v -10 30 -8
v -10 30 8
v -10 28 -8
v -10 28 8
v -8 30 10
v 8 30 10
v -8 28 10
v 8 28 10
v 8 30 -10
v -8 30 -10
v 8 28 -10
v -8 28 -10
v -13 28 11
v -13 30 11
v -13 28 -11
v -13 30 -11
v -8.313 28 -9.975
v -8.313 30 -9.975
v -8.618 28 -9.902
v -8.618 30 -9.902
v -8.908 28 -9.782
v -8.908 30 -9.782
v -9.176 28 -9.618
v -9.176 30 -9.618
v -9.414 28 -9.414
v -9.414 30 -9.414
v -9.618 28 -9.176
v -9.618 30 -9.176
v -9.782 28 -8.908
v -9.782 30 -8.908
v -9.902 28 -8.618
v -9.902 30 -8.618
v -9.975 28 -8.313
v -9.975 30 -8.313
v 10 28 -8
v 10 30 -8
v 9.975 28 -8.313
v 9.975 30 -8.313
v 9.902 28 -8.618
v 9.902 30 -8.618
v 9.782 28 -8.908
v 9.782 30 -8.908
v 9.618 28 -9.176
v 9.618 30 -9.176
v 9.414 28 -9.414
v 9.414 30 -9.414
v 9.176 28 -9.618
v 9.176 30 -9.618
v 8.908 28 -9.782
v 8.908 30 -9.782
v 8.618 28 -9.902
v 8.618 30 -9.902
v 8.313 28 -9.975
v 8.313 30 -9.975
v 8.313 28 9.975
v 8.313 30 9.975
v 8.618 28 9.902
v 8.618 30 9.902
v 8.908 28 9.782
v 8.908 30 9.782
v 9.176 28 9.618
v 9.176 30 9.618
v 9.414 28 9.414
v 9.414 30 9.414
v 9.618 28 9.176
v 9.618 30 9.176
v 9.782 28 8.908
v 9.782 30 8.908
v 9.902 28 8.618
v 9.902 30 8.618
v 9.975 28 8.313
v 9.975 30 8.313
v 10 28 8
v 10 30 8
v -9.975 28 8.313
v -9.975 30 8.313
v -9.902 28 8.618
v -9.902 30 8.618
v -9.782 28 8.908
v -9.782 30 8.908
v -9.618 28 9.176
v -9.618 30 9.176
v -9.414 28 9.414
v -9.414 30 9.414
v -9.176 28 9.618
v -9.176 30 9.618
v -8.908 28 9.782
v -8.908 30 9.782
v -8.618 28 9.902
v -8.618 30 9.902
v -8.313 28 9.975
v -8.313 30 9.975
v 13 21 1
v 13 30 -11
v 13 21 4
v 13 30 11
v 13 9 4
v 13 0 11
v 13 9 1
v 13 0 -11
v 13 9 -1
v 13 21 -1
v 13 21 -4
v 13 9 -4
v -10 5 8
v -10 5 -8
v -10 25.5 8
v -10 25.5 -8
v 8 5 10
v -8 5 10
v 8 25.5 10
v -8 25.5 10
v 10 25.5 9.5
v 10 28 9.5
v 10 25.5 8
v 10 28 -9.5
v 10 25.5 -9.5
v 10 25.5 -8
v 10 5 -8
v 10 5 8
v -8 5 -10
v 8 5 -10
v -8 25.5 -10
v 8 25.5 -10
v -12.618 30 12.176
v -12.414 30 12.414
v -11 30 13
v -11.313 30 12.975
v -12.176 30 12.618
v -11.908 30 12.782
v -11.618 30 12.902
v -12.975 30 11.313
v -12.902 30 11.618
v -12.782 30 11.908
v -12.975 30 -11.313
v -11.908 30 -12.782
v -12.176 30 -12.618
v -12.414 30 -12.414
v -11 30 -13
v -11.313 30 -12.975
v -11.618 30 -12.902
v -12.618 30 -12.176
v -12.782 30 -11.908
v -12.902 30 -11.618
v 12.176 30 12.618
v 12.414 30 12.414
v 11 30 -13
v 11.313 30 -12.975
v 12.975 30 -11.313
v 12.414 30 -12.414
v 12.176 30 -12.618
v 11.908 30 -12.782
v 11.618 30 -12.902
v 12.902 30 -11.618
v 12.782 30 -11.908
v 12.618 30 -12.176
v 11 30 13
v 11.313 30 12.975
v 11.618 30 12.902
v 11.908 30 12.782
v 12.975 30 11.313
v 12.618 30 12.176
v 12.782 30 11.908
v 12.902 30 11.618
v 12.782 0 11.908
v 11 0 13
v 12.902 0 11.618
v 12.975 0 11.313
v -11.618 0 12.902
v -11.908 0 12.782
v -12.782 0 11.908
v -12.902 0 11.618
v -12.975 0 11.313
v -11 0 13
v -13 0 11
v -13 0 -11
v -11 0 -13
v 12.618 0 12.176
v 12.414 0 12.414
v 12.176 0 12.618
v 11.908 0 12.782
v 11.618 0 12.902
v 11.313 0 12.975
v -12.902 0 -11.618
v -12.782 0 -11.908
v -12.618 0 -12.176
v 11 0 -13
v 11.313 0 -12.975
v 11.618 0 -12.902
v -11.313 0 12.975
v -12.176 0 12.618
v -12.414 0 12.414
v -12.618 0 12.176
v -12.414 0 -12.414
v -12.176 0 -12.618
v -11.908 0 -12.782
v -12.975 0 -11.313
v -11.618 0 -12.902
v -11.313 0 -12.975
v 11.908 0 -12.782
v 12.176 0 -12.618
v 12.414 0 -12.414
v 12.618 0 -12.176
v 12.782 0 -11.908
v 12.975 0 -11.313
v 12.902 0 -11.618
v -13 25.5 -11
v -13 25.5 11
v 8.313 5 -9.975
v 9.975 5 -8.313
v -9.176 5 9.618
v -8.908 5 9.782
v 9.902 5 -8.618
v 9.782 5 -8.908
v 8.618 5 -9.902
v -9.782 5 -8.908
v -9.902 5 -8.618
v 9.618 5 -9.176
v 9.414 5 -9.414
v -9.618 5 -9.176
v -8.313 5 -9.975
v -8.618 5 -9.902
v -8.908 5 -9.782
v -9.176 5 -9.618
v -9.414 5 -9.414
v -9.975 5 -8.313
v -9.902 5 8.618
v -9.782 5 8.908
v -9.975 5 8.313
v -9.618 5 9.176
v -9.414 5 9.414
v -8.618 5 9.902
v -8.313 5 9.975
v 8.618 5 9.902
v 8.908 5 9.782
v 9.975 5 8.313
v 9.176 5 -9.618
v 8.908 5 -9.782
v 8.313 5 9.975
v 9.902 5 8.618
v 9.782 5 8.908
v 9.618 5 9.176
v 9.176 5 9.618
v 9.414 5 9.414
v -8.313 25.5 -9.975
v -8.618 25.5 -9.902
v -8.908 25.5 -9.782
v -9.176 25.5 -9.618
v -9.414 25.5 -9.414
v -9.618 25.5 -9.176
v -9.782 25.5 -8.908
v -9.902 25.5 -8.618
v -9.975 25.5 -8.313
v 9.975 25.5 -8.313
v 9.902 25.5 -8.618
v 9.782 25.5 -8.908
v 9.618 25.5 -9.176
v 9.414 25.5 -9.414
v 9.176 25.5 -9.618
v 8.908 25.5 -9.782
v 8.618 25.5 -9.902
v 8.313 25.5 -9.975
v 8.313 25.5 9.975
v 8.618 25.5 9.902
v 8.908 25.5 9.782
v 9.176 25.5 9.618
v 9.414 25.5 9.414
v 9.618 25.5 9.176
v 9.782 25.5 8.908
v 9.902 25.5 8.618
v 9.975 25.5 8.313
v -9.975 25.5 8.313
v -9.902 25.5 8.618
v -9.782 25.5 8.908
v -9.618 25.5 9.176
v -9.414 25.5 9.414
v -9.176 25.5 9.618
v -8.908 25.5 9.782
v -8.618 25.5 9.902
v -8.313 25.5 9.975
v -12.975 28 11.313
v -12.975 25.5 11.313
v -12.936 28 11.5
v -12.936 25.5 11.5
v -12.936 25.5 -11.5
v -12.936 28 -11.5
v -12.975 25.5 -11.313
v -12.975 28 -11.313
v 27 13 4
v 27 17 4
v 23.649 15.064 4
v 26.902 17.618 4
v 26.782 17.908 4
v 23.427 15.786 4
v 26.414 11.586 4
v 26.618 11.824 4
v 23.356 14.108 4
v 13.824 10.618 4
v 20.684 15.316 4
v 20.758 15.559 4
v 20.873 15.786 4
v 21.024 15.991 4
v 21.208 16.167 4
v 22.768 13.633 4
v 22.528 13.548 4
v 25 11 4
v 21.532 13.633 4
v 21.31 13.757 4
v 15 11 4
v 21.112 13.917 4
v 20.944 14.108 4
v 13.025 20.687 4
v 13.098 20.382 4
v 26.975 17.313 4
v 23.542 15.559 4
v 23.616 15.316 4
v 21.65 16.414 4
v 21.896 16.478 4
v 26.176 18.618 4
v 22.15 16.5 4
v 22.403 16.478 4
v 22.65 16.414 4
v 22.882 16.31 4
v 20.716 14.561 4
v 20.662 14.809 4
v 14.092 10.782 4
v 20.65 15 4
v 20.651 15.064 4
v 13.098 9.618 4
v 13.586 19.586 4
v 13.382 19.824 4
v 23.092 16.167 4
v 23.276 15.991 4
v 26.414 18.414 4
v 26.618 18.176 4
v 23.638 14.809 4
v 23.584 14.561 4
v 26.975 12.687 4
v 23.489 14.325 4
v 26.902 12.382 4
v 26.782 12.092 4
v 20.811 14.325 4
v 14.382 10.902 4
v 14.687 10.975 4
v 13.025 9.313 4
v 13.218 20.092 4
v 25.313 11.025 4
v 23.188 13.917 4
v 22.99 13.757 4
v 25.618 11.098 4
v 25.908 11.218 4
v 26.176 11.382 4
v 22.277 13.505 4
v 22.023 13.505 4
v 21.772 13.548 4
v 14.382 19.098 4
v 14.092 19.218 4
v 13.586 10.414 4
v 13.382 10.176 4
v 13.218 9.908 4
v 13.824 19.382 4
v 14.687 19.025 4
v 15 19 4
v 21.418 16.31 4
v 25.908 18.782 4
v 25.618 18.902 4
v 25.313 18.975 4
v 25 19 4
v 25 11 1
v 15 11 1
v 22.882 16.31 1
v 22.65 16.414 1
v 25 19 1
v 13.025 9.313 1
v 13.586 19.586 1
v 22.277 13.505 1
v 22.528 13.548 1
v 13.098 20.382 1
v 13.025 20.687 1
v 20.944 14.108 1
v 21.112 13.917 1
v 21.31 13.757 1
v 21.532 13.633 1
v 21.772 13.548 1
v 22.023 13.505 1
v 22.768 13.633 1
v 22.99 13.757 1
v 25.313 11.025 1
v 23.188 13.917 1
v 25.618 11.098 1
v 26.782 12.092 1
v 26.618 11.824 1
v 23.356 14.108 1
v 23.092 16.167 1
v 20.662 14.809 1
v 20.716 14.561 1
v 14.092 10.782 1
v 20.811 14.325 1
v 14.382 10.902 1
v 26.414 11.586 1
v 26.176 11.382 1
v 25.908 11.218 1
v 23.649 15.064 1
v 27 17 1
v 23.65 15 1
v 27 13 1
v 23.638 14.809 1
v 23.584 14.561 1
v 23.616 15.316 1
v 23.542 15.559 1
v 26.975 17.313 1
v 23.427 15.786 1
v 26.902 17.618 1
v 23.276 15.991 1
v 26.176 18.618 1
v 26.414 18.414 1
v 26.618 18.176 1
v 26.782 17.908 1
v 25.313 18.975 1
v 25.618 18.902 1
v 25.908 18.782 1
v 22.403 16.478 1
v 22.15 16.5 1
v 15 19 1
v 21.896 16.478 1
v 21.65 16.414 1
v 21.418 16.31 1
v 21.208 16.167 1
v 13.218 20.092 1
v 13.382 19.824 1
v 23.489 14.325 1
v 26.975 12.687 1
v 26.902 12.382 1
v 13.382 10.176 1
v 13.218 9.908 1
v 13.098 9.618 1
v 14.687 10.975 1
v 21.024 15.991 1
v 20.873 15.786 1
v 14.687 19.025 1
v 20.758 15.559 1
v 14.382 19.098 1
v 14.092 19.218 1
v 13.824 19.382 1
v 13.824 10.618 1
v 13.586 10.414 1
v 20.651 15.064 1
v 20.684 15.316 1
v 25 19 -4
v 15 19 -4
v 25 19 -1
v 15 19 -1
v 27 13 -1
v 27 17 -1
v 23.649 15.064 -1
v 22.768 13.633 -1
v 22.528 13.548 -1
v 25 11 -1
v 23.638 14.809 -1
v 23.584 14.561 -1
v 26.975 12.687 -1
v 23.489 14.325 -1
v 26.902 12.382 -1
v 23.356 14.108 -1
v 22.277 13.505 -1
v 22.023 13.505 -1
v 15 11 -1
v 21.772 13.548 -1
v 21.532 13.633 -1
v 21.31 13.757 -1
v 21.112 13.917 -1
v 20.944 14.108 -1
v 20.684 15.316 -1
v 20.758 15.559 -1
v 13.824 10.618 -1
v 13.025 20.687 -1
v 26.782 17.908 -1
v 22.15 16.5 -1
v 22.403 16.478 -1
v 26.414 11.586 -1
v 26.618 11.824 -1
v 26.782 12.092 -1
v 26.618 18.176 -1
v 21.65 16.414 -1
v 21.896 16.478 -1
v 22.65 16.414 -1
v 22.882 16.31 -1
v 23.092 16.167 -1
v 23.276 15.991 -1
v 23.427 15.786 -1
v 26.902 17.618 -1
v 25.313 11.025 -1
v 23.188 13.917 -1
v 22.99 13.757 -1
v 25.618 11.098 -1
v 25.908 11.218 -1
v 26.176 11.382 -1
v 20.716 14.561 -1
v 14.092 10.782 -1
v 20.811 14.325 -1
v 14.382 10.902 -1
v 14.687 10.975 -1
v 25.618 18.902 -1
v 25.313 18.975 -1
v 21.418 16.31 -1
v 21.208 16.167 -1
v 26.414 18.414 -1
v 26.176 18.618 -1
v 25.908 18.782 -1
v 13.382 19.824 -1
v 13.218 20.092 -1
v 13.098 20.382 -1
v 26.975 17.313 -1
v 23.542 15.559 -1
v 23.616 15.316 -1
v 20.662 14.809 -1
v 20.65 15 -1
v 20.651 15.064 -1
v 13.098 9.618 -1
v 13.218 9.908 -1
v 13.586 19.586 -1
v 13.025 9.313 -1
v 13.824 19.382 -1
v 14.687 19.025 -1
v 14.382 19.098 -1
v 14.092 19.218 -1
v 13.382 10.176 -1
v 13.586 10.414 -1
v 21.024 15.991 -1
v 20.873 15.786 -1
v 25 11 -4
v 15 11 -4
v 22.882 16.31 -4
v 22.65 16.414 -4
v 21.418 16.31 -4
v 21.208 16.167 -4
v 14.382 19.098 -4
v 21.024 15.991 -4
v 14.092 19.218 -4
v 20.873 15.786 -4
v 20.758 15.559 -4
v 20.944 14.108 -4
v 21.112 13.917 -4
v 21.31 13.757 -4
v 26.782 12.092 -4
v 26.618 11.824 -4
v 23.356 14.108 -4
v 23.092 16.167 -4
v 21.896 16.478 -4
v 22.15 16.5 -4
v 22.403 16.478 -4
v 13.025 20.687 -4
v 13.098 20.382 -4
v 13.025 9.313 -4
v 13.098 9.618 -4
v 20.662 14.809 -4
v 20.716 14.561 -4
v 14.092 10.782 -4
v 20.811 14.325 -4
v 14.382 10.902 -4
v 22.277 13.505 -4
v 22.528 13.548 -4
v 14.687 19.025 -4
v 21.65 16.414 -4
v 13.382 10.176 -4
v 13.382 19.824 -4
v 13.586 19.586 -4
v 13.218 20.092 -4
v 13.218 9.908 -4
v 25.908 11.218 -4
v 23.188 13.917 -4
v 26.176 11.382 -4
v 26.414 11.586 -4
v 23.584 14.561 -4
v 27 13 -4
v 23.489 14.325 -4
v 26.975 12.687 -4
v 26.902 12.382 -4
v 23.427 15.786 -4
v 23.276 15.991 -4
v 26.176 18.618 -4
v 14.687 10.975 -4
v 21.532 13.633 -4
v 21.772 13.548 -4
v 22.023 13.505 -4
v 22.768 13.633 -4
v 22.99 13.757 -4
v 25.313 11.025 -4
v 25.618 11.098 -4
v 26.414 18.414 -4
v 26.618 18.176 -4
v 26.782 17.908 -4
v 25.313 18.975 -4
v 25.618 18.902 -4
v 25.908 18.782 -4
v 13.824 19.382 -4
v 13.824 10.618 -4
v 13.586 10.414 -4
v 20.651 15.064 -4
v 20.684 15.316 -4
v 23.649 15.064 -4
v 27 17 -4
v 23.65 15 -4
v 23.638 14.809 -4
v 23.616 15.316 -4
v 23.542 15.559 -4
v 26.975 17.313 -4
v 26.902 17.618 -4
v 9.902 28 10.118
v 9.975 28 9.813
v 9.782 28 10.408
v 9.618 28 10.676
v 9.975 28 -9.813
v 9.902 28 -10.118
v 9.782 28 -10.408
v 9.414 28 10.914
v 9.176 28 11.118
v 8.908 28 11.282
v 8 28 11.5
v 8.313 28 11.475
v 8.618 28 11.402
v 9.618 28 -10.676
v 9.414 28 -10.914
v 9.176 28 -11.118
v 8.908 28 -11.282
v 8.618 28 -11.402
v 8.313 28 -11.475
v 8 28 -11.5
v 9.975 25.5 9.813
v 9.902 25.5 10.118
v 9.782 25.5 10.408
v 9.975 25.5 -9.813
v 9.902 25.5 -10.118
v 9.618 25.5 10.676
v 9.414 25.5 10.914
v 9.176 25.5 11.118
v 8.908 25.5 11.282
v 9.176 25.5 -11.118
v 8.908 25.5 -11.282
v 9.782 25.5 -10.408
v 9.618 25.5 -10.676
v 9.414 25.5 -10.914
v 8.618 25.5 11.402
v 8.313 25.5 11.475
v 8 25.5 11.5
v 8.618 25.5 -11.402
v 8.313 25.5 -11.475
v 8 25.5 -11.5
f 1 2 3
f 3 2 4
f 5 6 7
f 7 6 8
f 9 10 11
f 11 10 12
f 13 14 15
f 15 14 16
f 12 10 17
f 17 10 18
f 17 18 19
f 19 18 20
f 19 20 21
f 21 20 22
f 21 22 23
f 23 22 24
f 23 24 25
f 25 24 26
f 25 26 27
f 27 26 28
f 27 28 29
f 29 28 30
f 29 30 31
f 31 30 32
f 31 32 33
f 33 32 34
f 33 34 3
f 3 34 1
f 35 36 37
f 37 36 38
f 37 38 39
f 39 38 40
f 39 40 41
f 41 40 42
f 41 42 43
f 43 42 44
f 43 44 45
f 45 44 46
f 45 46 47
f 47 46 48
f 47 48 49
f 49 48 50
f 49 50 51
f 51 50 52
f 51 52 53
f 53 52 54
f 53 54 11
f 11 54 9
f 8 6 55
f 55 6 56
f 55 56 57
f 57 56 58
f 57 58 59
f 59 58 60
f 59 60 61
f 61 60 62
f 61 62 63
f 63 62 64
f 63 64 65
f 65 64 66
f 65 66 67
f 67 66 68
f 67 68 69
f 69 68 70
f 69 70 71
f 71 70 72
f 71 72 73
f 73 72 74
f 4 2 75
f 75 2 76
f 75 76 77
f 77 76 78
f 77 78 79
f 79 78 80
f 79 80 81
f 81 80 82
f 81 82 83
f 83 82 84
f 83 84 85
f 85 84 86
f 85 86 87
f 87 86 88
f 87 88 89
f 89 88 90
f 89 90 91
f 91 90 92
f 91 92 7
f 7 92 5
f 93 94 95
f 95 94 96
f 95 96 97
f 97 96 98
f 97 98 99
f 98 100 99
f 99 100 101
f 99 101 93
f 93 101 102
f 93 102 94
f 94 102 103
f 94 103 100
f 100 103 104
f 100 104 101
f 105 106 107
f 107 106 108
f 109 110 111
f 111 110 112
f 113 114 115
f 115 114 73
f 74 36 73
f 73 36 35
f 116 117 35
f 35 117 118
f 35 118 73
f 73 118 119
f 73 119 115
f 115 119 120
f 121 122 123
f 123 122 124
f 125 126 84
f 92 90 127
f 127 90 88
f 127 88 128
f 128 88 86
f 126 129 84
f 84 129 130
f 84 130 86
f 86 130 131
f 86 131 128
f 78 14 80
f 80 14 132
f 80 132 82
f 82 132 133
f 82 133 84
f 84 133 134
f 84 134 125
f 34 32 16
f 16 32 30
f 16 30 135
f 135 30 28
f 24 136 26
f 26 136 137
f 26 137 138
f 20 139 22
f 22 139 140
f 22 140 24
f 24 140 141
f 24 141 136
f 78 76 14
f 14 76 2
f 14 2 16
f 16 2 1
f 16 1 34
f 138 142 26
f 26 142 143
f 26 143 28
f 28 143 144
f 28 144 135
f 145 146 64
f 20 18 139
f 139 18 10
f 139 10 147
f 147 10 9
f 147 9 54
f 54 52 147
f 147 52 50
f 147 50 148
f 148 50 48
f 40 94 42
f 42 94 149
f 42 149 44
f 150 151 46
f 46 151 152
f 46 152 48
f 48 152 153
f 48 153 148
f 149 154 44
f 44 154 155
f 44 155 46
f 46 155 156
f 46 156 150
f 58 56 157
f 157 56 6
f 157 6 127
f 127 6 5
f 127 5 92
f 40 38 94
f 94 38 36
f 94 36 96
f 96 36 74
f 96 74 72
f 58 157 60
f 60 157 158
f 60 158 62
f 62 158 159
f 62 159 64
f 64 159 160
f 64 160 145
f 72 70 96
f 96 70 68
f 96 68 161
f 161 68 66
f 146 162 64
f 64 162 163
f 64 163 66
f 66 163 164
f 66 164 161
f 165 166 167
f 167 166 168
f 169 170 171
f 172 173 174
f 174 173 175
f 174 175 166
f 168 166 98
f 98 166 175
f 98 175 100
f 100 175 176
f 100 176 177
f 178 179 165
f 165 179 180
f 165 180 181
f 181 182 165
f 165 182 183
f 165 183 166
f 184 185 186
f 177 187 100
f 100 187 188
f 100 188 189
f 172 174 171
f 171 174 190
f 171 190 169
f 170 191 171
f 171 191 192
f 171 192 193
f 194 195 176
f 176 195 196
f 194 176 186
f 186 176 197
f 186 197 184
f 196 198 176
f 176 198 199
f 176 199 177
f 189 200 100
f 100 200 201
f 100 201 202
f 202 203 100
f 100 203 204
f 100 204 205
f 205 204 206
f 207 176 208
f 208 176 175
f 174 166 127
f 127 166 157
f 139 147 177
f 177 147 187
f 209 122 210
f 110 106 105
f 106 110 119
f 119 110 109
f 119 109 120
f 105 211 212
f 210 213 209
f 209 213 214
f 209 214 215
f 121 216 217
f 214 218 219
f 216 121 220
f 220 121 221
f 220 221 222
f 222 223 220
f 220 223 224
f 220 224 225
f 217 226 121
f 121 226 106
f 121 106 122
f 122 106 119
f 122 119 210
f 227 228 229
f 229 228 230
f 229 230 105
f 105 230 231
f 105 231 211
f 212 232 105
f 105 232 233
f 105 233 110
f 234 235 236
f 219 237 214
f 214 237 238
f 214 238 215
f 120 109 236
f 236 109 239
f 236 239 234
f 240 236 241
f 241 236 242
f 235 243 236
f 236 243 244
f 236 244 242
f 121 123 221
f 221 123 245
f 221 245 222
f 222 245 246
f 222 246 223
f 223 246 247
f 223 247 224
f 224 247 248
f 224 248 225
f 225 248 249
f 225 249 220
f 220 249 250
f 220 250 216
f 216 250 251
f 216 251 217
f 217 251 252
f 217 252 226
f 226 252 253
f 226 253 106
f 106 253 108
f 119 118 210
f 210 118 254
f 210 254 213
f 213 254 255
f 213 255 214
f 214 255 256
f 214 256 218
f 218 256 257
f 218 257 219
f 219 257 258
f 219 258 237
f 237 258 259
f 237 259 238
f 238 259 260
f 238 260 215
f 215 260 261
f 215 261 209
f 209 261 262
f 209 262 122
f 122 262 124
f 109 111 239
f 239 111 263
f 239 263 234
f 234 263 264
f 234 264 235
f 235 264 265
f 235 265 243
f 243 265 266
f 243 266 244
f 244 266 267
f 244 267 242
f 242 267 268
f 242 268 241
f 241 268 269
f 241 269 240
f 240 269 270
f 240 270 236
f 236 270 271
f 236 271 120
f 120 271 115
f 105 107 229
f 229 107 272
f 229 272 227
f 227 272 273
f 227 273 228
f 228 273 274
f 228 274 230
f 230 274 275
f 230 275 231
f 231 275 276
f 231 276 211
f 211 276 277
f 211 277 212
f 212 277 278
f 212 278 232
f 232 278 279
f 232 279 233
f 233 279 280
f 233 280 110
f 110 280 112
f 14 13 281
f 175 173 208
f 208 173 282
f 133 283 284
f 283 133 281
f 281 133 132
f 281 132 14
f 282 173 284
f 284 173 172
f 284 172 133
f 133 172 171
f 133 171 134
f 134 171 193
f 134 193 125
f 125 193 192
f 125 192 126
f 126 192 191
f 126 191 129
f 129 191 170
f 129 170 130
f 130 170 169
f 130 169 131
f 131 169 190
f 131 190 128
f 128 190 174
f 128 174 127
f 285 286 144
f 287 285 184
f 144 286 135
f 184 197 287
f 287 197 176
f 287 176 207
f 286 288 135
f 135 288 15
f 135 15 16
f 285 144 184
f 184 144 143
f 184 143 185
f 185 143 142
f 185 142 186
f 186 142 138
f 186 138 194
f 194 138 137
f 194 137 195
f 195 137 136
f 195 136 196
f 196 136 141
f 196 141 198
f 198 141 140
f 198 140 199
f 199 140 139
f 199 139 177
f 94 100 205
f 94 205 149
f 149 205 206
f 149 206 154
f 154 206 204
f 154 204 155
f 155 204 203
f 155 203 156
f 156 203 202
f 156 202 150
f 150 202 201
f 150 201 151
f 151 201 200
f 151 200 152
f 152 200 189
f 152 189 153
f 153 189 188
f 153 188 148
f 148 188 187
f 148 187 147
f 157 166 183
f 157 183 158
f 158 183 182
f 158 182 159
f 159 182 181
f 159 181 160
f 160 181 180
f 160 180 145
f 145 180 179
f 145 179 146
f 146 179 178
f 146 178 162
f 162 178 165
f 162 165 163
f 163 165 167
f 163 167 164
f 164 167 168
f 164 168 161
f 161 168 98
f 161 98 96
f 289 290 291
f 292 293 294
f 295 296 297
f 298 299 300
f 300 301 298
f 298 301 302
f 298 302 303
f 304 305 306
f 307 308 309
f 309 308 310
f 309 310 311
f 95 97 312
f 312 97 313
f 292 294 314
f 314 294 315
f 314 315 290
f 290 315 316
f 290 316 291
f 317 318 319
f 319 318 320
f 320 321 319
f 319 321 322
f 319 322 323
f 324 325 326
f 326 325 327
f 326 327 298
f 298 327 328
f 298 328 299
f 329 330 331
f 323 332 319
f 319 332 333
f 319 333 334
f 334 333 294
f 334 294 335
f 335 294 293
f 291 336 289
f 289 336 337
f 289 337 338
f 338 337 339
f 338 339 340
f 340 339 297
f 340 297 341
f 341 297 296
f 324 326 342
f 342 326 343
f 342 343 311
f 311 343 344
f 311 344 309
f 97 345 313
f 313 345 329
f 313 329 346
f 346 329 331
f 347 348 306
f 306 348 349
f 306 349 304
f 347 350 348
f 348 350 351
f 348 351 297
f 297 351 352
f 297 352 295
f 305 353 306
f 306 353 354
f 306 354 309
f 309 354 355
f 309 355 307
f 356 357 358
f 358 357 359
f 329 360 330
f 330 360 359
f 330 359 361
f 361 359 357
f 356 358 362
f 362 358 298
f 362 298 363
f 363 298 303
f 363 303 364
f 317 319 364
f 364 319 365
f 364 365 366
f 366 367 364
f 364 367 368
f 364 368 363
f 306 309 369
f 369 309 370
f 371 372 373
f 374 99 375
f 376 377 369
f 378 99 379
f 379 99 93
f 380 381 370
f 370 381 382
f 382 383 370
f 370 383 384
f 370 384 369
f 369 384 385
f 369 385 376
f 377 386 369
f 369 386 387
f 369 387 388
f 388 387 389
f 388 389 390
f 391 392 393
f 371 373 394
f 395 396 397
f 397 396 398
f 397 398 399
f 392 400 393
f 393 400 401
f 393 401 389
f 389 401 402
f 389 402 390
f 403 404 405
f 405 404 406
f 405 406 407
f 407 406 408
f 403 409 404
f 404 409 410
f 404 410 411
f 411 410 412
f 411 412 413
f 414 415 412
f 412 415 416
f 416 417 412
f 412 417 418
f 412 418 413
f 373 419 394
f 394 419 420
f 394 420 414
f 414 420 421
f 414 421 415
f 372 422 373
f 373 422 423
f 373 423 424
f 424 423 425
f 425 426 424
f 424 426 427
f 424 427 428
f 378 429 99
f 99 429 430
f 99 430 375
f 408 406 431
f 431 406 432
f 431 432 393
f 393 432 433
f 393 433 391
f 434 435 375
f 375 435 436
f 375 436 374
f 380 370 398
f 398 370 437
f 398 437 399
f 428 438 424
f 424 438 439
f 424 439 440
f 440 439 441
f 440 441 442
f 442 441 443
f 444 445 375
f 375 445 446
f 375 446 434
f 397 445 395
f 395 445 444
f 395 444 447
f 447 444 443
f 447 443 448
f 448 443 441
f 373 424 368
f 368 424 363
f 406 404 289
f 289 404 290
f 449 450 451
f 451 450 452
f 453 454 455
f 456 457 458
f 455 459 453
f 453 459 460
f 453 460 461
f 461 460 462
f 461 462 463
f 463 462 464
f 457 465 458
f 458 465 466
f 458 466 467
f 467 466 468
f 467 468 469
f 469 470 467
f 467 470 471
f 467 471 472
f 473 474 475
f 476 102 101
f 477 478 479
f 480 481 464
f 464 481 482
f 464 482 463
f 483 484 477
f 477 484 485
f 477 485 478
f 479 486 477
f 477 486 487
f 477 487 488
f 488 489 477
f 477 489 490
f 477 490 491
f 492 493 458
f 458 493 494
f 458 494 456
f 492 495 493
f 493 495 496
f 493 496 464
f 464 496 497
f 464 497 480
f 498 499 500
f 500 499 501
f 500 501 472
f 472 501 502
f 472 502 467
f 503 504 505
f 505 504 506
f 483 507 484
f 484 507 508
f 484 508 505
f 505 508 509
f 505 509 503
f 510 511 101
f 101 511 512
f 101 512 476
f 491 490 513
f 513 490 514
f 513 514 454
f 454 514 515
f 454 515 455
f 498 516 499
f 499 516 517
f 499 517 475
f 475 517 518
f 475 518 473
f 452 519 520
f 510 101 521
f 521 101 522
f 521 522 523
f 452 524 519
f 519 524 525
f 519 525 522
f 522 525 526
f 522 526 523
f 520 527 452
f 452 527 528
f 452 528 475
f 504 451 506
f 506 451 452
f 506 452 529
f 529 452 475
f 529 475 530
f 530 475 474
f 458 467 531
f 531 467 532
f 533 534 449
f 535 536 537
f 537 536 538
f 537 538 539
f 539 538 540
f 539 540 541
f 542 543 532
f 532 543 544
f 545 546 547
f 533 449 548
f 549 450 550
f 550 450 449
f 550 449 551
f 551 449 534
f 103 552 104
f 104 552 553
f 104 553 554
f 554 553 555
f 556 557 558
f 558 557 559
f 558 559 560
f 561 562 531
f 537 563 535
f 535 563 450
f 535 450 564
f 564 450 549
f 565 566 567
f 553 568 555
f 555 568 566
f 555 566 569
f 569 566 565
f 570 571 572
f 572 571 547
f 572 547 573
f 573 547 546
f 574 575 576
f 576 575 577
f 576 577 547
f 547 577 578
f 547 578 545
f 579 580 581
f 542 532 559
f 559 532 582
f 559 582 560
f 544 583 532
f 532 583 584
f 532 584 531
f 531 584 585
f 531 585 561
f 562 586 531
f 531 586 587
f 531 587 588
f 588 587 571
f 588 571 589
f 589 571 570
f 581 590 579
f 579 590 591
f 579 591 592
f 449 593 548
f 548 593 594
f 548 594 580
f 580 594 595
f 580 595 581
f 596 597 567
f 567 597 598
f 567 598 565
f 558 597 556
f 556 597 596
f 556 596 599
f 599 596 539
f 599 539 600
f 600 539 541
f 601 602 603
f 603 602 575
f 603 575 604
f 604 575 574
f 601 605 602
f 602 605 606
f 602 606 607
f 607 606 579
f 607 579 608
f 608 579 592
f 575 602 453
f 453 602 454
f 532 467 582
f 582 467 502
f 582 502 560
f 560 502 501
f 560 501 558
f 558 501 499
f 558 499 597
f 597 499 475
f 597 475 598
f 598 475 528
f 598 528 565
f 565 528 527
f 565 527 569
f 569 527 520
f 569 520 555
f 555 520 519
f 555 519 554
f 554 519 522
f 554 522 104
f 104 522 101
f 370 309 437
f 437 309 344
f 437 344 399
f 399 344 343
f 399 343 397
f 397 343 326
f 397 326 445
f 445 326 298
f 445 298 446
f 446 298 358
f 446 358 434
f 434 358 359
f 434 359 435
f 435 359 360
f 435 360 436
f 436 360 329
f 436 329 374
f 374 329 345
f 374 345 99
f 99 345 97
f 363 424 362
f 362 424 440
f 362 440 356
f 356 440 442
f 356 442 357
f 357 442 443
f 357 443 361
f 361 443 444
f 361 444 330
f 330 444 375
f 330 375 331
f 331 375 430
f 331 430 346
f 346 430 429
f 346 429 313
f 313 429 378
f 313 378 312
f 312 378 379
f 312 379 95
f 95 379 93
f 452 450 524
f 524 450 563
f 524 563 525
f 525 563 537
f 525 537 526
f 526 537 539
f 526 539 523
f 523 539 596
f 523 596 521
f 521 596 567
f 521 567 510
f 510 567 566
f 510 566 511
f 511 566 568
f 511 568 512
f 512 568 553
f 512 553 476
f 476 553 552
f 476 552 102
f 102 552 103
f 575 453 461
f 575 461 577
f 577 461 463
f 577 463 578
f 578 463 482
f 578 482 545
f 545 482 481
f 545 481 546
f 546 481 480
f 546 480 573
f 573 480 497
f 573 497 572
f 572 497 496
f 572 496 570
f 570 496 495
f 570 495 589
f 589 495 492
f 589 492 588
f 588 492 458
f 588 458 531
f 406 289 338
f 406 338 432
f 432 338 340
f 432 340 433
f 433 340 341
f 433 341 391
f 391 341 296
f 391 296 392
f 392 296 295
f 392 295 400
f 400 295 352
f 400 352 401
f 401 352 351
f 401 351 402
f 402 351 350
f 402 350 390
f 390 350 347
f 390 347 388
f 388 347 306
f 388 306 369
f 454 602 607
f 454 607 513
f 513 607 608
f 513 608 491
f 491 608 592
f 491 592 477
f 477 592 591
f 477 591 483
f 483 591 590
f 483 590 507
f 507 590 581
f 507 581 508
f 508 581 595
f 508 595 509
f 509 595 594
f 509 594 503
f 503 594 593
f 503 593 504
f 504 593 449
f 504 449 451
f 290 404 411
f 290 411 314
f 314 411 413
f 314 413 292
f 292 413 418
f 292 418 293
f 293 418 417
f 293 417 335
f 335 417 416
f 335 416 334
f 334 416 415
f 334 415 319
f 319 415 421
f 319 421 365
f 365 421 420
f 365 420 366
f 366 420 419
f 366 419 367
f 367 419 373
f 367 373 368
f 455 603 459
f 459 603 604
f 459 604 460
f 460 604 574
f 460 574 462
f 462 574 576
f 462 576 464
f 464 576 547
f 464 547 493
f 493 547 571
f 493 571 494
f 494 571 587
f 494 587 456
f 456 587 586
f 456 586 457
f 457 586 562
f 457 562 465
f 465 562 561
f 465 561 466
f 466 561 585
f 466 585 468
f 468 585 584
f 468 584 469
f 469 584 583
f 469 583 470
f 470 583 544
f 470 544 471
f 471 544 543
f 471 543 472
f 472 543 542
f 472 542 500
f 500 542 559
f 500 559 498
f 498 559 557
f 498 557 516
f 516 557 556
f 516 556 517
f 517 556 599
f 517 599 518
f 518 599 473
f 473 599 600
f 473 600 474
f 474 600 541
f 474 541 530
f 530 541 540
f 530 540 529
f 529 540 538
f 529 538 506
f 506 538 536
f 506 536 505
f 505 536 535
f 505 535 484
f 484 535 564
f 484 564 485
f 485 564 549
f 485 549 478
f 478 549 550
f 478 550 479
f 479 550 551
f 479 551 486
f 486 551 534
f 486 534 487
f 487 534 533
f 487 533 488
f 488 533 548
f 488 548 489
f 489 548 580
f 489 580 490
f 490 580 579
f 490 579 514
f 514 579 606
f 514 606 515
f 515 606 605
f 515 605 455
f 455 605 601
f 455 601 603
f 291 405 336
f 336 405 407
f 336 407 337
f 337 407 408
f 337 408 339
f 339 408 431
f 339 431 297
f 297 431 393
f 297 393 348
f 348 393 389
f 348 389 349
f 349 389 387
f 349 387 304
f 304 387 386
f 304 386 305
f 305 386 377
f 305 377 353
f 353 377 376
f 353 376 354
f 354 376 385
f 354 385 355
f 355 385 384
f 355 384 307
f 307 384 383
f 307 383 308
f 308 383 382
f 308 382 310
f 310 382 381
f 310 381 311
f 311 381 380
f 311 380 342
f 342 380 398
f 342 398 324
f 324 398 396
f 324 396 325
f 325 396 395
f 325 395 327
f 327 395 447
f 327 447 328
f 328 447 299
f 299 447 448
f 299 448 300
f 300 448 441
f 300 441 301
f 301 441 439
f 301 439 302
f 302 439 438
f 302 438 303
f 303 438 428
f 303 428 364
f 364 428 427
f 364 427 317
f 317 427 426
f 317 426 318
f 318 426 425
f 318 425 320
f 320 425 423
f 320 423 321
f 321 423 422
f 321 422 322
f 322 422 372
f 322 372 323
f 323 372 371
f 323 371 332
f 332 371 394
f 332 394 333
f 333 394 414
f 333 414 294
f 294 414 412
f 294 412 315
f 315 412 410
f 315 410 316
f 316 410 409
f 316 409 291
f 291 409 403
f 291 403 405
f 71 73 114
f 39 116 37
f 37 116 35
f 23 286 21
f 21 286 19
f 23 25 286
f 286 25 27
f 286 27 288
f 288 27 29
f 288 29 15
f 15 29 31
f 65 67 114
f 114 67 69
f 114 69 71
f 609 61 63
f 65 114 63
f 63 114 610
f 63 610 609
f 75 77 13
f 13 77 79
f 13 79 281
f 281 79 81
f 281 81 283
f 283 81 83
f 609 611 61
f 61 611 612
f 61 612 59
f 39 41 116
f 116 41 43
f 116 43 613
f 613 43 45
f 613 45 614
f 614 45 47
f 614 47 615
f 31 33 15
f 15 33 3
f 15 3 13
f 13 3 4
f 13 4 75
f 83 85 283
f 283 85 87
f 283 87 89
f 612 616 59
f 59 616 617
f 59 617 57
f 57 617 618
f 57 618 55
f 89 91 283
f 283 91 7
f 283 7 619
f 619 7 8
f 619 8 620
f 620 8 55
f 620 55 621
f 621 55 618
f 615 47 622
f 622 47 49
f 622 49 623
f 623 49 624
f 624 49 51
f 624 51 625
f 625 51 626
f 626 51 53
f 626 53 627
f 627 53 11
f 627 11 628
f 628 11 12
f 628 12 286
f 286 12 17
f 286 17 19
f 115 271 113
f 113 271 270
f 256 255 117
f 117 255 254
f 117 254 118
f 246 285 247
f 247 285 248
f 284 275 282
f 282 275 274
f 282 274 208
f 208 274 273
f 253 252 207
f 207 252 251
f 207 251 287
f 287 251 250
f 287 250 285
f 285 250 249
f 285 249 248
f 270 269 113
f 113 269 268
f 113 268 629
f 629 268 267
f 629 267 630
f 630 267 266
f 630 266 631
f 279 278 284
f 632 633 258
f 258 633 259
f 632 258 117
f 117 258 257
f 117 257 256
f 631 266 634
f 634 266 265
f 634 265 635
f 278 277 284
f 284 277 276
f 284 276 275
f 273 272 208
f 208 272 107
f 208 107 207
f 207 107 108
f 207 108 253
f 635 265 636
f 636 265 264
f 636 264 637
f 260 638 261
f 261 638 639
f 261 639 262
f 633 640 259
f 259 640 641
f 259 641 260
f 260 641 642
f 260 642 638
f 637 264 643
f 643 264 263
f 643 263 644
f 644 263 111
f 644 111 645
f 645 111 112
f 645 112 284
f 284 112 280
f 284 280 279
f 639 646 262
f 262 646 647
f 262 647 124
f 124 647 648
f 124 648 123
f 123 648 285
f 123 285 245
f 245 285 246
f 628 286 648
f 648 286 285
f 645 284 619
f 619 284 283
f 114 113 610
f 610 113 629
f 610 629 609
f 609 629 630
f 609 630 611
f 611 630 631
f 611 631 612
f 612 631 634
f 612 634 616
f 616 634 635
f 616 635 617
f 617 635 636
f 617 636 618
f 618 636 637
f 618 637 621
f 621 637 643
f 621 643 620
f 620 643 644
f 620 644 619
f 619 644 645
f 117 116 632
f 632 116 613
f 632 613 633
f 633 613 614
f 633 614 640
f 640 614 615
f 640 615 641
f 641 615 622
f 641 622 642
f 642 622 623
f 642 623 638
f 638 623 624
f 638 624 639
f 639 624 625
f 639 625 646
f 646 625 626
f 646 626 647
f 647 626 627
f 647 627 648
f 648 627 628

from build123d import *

# Parameters (mm, degrees)
SKETCH1_W               = 26
SKETCH1_H               = 26
SKETCH1_W_2             = 20
SKETCH1_H_2             = 20
BOSS_EXTRUDE1_DEPTH     = 30
SKETCH2_W               = 20
SKETCH2_H               = 20
BOSS_EXTRUDE2_DEPTH     = 5
FILLET1_R               = 2
SKETCH6_W               = 3
SKETCH6_H               = 8
BOSS_EXTRUDE4_DEPTH     = 14
FILLET2_R               = 2
FILLET3_R               = 2
SKETCH7_R               = 1.5
CUT_EXTRUDE2_DEPTH      = 10
CUT_EXTRUDE2_DEPTH_BACK = 18
SKETCH9_W               = 23
SKETCH9_H               = 2.5
CUT_EXTRUDE3_DEPTH      = 23
FILLET4_R               = 2


with BuildPart() as part:
    # Sketch1 → Boss-Extrude1 (new body)
    with BuildSketch(Plane(origin=(0, 0, 0), x_dir=(1, 0, 0), z_dir=(0, 1, 0))):
        Rectangle(SKETCH1_W, SKETCH1_H)
        Rectangle(SKETCH1_W_2, SKETCH1_H_2, mode=Mode.SUBTRACT)
    extrude(amount=BOSS_EXTRUDE1_DEPTH)

    # Sketch2 → Boss-Extrude2 (add)
    with BuildSketch(Plane.XZ):
        Rectangle(SKETCH2_W, SKETCH2_H)
    extrude(amount=-BOSS_EXTRUDE2_DEPTH)

    # Fillet1
    fillet1_edges = [part.edges().sort_by_distance(p)[0] for p in [
        (-10, 17.5, -10),
        (-10, 17.5, 10),
        (10, 17.5, 10),
        (10, 17.5, -10),
        (-13, 15, -13),
        (13, 15, -13),
        (13, 15, 13),
        (-13, 15, 13),
    ]]
    fillet(fillet1_edges, radius=FILLET1_R)

    # Sketch6 → Boss-Extrude4 (add)
    with BuildSketch(Plane(origin=(13, 0, 0), x_dir=(0, 0, -1), z_dir=(1, 0, 0))):
        with Locations((-2.5, 15)):
            Rectangle(SKETCH6_W, SKETCH6_H)
        with Locations((2.5, 15)):
            Rectangle(SKETCH6_W, SKETCH6_H)
    extrude(amount=BOSS_EXTRUDE4_DEPTH)

    # Fillet2
    fillet2_edges = [part.edges().sort_by_distance(p)[0] for p in [
        (13, 11, 2.5),
        (13, 19, 2.5),
        (13, 19, -2.5),
        (13, 11, -2.5),
    ]]
    fillet(fillet2_edges, radius=FILLET2_R)

    # Fillet3
    fillet3_edges = [part.edges().sort_by_distance(p)[0] for p in [
        (27, 11, 2.5),
        (27, 19, 2.5),
        (27, 19, -2.5),
        (27, 11, -2.5),
    ]]
    fillet(fillet3_edges, radius=FILLET3_R)

    # Sketch7 → Cut-Extrude2 (cut, two sides)
    with BuildSketch(Plane(origin=(0, 0, -4), x_dir=(-1, 0, 0), z_dir=(0, 0, -1))) as cut_extrude2_sk:
        with Locations((-22.15, 15)):
            Circle(SKETCH7_R)
    extrude(amount=CUT_EXTRUDE2_DEPTH, mode=Mode.SUBTRACT)
    extrude(cut_extrude2_sk.sketch, amount=-CUT_EXTRUDE2_DEPTH_BACK, mode=Mode.SUBTRACT)

    # Sketch9 → Cut-Extrude3 (cut)
    with BuildSketch(Plane.ZY.offset(13)):
        with Locations((0, 26.75)):
            Rectangle(SKETCH9_W, SKETCH9_H)
    extrude(amount=-CUT_EXTRUDE3_DEPTH, mode=Mode.SUBTRACT)

    # Fillet4
    fillet4_edges = [part.edges().sort_by_distance(p)[0] for p in [
        (10, 26.75, 11.5),
        (10, 26.75, -11.5),
    ]]
    fillet(fillet4_edges, radius=FILLET4_R)


solid = part.part
